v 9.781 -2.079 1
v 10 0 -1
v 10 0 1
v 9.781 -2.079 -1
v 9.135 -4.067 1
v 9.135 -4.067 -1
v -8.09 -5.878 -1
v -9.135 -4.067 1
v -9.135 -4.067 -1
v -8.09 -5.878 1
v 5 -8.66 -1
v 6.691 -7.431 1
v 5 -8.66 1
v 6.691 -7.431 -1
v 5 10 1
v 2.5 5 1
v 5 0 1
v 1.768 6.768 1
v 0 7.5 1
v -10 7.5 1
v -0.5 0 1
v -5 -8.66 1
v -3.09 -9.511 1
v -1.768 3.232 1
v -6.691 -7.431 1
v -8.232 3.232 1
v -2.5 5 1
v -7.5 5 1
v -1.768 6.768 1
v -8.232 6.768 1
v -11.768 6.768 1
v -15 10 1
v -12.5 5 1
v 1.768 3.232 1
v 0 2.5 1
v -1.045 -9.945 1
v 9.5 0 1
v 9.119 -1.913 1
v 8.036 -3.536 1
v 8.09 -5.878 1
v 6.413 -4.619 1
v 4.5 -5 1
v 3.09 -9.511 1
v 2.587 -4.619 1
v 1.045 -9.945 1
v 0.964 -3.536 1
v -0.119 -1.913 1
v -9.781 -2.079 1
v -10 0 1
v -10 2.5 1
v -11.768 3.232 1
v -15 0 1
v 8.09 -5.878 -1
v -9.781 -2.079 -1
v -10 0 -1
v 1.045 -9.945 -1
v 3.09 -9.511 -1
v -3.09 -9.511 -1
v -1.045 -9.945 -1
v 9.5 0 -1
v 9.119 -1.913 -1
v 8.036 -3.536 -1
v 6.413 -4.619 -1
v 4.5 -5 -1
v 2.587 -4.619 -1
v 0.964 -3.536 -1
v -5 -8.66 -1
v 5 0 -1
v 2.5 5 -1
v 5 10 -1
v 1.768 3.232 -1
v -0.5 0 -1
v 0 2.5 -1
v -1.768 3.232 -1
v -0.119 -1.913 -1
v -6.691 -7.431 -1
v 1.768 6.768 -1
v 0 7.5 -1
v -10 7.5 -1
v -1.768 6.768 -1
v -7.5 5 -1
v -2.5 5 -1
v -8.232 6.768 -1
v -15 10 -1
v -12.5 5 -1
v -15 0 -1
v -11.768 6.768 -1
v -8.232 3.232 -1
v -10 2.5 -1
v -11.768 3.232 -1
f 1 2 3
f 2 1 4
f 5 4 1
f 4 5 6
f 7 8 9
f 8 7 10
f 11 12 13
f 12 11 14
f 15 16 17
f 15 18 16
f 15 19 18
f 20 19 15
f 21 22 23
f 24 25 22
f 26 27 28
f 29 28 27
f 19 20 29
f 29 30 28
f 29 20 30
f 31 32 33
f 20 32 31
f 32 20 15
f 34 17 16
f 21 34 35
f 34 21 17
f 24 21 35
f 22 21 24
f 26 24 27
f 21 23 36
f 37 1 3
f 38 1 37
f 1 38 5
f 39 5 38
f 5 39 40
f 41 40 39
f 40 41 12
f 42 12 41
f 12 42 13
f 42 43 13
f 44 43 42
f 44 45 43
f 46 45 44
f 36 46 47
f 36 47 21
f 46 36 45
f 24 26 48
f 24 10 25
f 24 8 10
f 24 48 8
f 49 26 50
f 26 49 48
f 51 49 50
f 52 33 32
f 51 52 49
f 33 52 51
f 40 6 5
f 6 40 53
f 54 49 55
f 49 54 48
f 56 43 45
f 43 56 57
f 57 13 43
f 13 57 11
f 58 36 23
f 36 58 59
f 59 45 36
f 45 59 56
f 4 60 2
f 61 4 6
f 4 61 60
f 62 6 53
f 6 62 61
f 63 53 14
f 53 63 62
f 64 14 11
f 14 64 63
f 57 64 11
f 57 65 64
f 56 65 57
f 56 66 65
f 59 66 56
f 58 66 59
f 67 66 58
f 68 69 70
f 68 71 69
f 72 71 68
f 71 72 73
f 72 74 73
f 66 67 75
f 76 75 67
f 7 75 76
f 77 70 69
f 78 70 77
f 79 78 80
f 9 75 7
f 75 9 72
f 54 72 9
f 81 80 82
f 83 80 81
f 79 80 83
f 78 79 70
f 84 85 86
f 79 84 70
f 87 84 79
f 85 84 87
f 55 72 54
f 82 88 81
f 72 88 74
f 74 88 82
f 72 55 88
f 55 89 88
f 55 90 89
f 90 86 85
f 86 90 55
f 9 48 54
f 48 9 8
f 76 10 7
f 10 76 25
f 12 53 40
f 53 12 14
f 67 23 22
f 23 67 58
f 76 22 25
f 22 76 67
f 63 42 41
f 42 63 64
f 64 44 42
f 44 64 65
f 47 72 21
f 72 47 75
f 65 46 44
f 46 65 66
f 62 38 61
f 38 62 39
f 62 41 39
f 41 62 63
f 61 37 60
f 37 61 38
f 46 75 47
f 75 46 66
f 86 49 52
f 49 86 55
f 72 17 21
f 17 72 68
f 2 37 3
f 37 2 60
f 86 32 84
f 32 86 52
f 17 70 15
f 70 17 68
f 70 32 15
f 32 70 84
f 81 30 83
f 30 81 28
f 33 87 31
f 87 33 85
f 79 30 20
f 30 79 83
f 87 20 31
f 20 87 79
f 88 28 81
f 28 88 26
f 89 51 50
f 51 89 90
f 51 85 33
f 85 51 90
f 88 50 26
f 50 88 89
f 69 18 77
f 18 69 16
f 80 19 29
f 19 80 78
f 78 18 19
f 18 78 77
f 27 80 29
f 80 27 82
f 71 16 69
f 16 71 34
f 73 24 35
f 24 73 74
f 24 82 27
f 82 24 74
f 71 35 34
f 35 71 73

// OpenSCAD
s=2;
difference(){
union(){
    difference(){
        difference(){
            cylinder(s,10,10,center=true);
            translate([4.5,0,0])cylinder(s+1,5,5, center = true);
        }
        translate([0,10,0])cube([20,20,s+1],center=true);
    }
    translate([-5,5,0])cube([20,10,s],center=true);
}
union(){
translate([-10,5,0])cylinder(s+1,2.5,2.5,center=true);
translate([0,5,0])cylinder(s+1,2.5,2.5,center=true);
}
}
